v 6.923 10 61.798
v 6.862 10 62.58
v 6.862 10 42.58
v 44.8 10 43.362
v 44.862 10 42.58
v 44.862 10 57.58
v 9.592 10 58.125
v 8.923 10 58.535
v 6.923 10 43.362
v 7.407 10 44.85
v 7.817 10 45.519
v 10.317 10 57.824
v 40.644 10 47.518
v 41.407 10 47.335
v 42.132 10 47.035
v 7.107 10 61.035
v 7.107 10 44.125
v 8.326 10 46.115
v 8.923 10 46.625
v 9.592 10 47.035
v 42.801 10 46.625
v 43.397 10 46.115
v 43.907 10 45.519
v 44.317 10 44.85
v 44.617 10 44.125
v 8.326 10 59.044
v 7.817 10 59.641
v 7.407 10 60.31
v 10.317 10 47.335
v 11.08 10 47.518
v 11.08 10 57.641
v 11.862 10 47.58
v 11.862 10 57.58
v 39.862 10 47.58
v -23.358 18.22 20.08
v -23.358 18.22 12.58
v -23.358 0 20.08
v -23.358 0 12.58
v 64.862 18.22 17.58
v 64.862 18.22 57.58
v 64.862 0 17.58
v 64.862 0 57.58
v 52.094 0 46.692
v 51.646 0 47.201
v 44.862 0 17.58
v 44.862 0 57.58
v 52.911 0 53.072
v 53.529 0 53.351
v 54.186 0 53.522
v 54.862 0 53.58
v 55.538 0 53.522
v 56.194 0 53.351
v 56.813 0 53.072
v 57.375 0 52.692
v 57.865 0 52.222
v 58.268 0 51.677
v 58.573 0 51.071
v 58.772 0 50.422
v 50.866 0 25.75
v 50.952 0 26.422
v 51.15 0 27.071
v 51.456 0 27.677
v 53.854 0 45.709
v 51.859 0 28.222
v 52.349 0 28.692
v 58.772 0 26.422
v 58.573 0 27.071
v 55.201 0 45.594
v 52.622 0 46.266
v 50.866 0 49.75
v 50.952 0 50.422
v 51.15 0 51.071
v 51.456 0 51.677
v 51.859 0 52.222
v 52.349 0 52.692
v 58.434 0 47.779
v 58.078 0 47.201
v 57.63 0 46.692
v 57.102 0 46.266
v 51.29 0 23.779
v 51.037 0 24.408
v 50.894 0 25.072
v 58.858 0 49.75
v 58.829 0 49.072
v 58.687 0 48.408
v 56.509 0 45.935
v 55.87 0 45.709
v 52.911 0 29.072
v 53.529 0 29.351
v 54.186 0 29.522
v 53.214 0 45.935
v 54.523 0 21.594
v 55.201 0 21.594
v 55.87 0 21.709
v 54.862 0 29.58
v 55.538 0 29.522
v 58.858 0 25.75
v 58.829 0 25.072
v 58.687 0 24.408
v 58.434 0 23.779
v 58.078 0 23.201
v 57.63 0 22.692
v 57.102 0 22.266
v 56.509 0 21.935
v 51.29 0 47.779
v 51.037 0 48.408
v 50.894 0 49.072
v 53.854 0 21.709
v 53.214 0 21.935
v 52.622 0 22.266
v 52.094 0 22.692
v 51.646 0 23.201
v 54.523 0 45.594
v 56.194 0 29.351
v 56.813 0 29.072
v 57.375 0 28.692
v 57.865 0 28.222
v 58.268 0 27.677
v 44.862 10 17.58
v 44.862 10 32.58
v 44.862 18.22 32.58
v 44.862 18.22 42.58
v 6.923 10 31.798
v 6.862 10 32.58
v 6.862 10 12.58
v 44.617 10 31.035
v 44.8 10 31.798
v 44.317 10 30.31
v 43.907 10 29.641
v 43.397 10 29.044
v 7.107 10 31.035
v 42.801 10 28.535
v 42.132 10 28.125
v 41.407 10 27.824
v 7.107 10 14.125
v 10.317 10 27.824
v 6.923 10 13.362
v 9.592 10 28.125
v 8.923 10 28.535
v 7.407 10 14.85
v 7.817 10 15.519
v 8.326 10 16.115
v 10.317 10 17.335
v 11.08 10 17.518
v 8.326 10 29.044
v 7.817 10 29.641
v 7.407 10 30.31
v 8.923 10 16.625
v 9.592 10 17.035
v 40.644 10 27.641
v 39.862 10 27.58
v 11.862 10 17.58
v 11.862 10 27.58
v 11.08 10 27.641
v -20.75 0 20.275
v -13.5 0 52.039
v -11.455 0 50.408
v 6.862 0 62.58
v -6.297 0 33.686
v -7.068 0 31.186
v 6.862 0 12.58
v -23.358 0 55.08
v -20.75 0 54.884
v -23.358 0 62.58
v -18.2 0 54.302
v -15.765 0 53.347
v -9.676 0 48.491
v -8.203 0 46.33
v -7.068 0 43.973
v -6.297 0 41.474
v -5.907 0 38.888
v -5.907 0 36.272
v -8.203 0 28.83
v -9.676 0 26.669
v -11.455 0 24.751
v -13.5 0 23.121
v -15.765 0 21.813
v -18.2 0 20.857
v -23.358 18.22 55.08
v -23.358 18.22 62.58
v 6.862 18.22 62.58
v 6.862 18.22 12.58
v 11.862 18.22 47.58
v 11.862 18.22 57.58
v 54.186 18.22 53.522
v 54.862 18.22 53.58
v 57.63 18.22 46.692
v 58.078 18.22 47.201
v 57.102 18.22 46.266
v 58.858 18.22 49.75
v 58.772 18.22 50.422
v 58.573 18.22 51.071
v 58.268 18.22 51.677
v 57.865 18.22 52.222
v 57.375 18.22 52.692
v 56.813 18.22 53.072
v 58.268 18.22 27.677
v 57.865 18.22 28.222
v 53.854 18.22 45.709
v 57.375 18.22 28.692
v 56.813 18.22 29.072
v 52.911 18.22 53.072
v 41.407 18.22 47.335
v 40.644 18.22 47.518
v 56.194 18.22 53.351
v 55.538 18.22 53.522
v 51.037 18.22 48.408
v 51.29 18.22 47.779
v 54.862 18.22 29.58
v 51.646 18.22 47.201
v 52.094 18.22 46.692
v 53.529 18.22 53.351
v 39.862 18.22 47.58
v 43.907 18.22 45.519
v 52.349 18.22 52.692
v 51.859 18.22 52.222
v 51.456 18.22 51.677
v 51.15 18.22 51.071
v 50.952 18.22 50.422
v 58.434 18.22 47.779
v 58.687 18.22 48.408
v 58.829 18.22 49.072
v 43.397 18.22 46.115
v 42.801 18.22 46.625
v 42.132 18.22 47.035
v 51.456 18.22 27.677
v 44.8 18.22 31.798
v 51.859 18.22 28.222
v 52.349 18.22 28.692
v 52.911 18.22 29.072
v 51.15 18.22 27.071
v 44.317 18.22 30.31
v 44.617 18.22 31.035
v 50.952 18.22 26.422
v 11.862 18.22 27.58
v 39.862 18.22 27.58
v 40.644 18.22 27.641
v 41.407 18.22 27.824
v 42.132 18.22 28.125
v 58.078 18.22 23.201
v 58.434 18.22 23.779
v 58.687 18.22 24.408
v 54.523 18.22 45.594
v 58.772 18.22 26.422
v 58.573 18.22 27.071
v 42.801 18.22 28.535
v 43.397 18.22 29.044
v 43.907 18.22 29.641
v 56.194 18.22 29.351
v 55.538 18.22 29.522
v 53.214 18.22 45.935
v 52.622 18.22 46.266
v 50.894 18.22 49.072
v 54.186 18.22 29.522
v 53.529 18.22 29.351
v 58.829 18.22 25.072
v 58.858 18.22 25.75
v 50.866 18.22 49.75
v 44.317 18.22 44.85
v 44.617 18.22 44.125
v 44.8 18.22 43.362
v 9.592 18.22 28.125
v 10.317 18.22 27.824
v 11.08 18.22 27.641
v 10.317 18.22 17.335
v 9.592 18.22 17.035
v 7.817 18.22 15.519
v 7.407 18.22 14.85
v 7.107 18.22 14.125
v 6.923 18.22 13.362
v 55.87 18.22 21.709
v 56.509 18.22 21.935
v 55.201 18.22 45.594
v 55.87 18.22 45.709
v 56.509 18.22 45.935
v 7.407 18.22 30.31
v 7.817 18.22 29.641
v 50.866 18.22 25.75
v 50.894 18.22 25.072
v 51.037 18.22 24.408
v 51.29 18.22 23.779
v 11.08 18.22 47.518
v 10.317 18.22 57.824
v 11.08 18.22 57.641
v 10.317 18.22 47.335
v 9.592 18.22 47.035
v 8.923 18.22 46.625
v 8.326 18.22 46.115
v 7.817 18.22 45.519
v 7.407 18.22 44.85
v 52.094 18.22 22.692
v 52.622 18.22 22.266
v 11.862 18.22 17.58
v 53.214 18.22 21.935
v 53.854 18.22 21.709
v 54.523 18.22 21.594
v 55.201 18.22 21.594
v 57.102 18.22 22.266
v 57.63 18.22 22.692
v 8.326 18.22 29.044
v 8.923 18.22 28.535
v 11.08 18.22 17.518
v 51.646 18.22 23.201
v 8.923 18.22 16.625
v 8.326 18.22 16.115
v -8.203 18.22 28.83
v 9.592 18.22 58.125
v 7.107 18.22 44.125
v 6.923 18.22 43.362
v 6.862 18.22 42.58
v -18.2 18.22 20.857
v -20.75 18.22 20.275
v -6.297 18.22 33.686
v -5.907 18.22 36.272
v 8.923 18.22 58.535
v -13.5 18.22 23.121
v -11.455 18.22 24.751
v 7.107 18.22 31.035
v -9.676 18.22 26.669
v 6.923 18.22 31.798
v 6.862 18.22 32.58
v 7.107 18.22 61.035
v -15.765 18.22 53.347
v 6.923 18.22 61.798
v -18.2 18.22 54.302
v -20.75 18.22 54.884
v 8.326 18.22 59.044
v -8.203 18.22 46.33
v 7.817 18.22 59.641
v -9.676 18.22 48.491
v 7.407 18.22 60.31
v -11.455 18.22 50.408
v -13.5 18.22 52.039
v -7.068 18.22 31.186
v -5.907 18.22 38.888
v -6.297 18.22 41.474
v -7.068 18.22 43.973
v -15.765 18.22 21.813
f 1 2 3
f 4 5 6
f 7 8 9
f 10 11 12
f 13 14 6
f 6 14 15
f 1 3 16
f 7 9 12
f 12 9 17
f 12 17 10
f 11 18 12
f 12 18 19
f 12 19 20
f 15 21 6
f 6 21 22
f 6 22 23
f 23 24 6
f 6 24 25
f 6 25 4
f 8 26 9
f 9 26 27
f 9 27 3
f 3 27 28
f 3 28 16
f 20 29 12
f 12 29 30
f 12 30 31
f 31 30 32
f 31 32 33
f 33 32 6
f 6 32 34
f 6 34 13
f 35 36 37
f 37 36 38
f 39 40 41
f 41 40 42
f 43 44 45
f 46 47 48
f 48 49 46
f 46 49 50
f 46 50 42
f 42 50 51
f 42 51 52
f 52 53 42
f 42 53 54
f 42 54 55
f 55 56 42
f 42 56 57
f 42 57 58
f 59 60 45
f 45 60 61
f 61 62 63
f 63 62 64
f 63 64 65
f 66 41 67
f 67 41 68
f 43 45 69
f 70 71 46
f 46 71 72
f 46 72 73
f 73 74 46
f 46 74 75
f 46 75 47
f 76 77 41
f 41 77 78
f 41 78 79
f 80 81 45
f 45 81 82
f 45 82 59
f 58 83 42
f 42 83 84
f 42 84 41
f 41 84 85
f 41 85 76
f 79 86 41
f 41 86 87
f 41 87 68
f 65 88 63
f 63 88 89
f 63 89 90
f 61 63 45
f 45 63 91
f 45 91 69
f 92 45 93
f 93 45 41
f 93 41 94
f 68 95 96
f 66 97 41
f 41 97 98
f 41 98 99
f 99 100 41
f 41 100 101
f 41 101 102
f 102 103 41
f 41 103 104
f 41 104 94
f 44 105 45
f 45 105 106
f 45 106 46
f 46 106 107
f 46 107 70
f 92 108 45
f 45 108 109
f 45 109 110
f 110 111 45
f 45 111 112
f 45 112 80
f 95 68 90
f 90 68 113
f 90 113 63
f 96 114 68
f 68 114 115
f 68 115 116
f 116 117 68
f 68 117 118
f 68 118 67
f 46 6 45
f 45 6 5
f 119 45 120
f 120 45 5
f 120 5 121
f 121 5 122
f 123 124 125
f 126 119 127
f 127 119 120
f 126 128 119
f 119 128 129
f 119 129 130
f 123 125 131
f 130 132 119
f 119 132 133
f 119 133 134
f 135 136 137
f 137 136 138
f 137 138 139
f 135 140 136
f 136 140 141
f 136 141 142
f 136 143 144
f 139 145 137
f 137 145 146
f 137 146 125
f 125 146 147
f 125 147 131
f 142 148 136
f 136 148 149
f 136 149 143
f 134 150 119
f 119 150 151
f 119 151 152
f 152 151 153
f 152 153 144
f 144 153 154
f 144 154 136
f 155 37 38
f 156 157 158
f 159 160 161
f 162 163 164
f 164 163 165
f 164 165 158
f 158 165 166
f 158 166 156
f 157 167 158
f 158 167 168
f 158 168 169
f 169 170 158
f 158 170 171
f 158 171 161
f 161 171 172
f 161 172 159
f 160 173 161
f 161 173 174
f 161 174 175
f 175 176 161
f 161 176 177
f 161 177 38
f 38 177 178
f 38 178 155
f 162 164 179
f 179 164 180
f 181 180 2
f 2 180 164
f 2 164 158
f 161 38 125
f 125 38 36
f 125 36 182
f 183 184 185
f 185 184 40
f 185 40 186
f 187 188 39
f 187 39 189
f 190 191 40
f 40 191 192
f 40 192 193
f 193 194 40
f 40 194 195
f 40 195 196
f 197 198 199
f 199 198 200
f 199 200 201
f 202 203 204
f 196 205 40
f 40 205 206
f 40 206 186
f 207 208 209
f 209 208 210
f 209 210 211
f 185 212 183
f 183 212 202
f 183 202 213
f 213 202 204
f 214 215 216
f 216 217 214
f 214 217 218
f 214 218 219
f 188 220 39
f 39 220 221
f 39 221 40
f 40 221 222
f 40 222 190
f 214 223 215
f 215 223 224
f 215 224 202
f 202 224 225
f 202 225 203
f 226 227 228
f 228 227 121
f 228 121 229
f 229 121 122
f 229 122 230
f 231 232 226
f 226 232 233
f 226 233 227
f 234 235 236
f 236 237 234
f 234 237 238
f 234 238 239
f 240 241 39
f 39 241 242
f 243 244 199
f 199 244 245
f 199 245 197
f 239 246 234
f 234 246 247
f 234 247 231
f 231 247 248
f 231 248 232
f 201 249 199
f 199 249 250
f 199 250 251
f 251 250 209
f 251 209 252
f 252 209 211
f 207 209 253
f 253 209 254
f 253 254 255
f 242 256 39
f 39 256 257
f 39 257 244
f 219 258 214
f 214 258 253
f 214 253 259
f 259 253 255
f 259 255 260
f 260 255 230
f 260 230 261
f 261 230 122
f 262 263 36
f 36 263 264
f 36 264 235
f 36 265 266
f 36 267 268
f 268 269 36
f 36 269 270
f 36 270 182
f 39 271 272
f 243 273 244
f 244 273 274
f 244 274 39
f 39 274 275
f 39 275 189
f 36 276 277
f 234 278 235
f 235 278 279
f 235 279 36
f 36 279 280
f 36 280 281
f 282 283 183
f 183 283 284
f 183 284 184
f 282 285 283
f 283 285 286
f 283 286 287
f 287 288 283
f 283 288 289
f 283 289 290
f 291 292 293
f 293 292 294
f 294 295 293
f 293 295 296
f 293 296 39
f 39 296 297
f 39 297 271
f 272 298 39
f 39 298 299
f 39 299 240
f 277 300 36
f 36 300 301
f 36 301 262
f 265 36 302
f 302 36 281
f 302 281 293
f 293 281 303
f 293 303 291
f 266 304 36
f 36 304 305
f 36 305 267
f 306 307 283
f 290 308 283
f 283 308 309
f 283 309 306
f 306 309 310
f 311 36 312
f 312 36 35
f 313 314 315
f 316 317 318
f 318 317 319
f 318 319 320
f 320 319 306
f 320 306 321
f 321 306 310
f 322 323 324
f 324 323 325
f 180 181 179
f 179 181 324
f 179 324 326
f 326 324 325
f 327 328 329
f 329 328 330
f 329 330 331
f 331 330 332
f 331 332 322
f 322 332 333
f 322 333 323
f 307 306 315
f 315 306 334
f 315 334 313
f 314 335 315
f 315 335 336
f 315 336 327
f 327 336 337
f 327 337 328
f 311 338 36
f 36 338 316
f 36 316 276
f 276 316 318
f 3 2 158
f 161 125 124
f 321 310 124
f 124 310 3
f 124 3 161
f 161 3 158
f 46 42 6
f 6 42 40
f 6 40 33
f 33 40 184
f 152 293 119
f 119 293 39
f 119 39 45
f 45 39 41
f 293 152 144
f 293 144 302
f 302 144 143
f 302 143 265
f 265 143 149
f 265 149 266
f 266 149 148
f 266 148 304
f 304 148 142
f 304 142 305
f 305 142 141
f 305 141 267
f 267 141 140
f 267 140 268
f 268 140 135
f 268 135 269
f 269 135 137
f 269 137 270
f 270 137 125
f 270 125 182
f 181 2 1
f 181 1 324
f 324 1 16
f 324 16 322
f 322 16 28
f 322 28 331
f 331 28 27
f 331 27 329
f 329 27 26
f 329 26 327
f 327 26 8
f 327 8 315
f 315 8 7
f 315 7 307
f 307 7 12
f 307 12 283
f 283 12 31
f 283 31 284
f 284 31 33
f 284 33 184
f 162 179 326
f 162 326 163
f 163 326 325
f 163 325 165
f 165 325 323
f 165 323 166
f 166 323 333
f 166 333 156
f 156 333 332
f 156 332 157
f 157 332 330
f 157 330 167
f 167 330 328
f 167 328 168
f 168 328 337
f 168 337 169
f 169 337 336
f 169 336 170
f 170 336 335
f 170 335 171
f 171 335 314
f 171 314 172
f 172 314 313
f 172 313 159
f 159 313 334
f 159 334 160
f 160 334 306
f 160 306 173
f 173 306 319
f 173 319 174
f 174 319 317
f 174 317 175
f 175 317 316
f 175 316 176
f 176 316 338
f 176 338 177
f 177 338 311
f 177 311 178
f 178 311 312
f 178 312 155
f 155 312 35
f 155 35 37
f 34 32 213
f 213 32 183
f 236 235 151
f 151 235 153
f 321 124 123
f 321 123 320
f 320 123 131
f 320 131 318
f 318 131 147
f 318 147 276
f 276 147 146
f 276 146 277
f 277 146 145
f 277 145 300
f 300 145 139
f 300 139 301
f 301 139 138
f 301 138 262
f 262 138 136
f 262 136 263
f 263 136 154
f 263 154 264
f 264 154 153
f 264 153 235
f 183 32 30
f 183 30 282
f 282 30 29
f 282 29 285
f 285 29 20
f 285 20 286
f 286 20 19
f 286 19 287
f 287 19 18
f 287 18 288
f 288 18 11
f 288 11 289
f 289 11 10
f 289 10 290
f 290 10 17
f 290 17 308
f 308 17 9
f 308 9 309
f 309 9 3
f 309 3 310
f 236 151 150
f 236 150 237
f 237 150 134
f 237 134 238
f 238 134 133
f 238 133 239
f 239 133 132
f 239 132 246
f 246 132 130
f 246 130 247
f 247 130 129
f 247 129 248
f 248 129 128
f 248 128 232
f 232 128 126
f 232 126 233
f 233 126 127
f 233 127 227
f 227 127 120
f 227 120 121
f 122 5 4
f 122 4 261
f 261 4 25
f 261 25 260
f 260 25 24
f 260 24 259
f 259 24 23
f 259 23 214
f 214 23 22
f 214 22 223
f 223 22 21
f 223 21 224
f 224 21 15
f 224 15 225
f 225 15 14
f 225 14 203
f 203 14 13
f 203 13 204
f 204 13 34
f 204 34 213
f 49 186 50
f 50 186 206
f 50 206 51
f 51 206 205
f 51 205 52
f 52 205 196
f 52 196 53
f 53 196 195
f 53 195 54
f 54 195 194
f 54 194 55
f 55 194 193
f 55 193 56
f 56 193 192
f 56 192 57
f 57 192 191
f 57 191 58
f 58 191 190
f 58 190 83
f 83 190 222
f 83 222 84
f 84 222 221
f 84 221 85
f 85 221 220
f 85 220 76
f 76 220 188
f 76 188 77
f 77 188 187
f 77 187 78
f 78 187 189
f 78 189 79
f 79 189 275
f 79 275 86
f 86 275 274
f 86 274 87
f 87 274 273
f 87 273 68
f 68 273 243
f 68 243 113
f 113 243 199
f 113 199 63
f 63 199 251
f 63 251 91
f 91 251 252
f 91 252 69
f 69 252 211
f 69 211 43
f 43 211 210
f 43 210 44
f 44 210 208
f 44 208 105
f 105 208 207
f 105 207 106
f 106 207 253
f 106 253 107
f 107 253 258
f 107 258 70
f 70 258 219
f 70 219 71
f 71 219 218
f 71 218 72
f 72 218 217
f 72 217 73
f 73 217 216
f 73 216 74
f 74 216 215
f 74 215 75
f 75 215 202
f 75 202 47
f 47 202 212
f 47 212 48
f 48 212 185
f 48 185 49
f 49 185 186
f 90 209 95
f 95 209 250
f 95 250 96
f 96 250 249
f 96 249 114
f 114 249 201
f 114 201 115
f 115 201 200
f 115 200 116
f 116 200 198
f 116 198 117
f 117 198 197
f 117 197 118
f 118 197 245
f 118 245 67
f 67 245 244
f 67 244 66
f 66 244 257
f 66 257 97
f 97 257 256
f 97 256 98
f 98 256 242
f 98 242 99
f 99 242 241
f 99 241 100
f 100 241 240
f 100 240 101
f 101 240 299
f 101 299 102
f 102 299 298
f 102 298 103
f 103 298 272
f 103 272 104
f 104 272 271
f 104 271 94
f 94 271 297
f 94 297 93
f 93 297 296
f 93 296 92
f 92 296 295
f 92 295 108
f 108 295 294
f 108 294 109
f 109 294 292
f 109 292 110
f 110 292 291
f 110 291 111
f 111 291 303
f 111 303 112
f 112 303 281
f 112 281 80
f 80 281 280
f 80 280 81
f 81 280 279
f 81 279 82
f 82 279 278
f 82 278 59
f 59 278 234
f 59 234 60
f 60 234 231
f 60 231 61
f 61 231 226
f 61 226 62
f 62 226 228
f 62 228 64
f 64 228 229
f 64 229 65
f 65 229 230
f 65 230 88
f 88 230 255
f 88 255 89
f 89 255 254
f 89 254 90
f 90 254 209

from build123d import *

# Parameters (mm, degrees)
ESQUISSE1_W             = 88.22
ESQUISSE1_H             = 50
BOSS_EXTRU_2_DEPTH      = 18.22
ESQUISSE3_W             = 38
ESQUISSE3_H             = 50
ENL_V_MAT_EXTRU_1_DEPTH = 10
ESQUISSE6_W             = 58
ESQUISSE6_H             = 18.22
ENL_V_MAT_EXTRU_2_DEPTH = 5
ESQUISSE7_W             = 58
ESQUISSE7_H             = 18.22
ENL_V_MAT_EXTRU_3_DEPTH = 5
CONG_6_R                = 5
CONG_11_R               = 5
ESQUISSE8_R             = 17.5
ENL_V_MAT_EXTRU_4_DEPTH = 92.952500984
ESQUISSE10_W            = 38
ESQUISSE10_H            = 20
ENL_V_MAT_EXTRU_5_DEPTH = 92.952500984
CONG_7_R                = 5
CONG_8_R                = 5
CONG_9_R                = 5
CONG_10_R               = 5
ESQUISSE11_R            = 4
ENL_V_MAT_EXTRU_6_DEPTH = 92.952500984


with BuildPart() as part:
    # Esquisse1 → Boss.-Extru.2 (new body)
    with BuildSketch(Plane(origin=(0, 0, 0), x_dir=(1, 0, 0), z_dir=(0, 1, 0))):
        with Locations((20.751905501, -37.579767114)):
            Rectangle(ESQUISSE1_W, ESQUISSE1_H)
    extrude(amount=BOSS_EXTRU_2_DEPTH)

    # Esquisse3 → Enlèv. mat.-Extru.1 (cut)
    with BuildSketch(Plane(origin=(0, 0, 0), x_dir=(-1, 0, 0), z_dir=(0, -1, 0))):
        with Locations((-25.861905501, -37.579767114)):
            Rectangle(ESQUISSE3_W, ESQUISSE3_H)
    extrude(amount=-ENL_V_MAT_EXTRU_1_DEPTH, mode=Mode.SUBTRACT)

    # Esquisse6 → Enlèv. mat.-Extru.2 (cut)
    with BuildSketch(Plane.XY.offset(62.579767114)):
        with Locations((35.861905501, 9.11)):
            Rectangle(ESQUISSE6_W, ESQUISSE6_H)
    extrude(amount=-ENL_V_MAT_EXTRU_2_DEPTH, mode=Mode.SUBTRACT)

    # Esquisse7 → Enlèv. mat.-Extru.3 (cut)
    with BuildSketch(Plane(origin=(0, 0, 12.579767114), x_dir=(-1, 0, 0), z_dir=(0, 0, -1))):
        with Locations((-35.861905501, 9.11)):
            Rectangle(ESQUISSE7_W, ESQUISSE7_H)
    extrude(amount=-ENL_V_MAT_EXTRU_3_DEPTH, mode=Mode.SUBTRACT)

    # Congé6
    cong_6_edges = [part.edges().sort_by_distance(p)[0] for p in [
        (6.861905501, 14.11, 17.579767114),
    ]]
    fillet(cong_6_edges, radius=CONG_6_R - 0.0001)  # a hair under: the kernel refuses the full size

    # Congé11
    cong_11_edges = [part.edges().sort_by_distance(p)[0] for p in [
        (6.861905501, 14.11, 57.579767114),
    ]]
    fillet(cong_11_edges, radius=CONG_11_R - 0.0001)  # a hair under: the kernel refuses the full size

    # Esquisse8 → Enlèv. mat.-Extru.4 (cut, through all)
    with BuildSketch(Plane(origin=(0, 18.22, 0), x_dir=(1, 0, 0), z_dir=(0, 1, 0))):
        with Locations((-23.358094499, -37.579767114)):
            Circle(ESQUISSE8_R)
    extrude(amount=-ENL_V_MAT_EXTRU_4_DEPTH, mode=Mode.SUBTRACT)

    # Esquisse10 → Enlèv. mat.-Extru.5 (cut, through all)
    with BuildSketch(Plane(origin=(0, 18.22, 0), x_dir=(1, 0, 0), z_dir=(0, 1, 0))):
        with Locations((25.861905501, -37.579767114)):
            Rectangle(ESQUISSE10_W, ESQUISSE10_H)
    extrude(amount=-ENL_V_MAT_EXTRU_5_DEPTH, mode=Mode.SUBTRACT)

    # Congé7
    cong_7_edges = [part.edges().sort_by_distance(p)[0] for p in [
        (6.861905501, 14.11, 27.579767114),
    ]]
    fillet(cong_7_edges, radius=CONG_7_R)

    # Congé8
    cong_8_edges = [part.edges().sort_by_distance(p)[0] for p in [
        (6.861905501, 14.11, 47.579767114),
    ]]
    fillet(cong_8_edges, radius=CONG_8_R)

    # Congé9
    cong_9_edges = [part.edges().sort_by_distance(p)[0] for p in [
        (44.861905501, 14.11, 27.579767114),
    ]]
    fillet(cong_9_edges, radius=CONG_9_R)

    # Congé10
    cong_10_edges = [part.edges().sort_by_distance(p)[0] for p in [
        (44.861905501, 14.11, 47.579767114),
    ]]
    fillet(cong_10_edges, radius=CONG_10_R)

    # Esquisse11 → Enlèv. mat.-Extru.6 (cut, through all)
    with BuildSketch(Plane(origin=(0, 18.22, 0), x_dir=(1, 0, 0), z_dir=(0, 1, 0))):
        with Locations(Location((54.861905501, -49.579767114, 0), (0, 0, 270))):
            Circle(ESQUISSE11_R)
        with Locations(Location((54.861905501, -25.579767114, 0), (0, 0, 270))):
            Circle(ESQUISSE11_R)
    extrude(amount=-ENL_V_MAT_EXTRU_6_DEPTH, mode=Mode.SUBTRACT)


solid = part.part
